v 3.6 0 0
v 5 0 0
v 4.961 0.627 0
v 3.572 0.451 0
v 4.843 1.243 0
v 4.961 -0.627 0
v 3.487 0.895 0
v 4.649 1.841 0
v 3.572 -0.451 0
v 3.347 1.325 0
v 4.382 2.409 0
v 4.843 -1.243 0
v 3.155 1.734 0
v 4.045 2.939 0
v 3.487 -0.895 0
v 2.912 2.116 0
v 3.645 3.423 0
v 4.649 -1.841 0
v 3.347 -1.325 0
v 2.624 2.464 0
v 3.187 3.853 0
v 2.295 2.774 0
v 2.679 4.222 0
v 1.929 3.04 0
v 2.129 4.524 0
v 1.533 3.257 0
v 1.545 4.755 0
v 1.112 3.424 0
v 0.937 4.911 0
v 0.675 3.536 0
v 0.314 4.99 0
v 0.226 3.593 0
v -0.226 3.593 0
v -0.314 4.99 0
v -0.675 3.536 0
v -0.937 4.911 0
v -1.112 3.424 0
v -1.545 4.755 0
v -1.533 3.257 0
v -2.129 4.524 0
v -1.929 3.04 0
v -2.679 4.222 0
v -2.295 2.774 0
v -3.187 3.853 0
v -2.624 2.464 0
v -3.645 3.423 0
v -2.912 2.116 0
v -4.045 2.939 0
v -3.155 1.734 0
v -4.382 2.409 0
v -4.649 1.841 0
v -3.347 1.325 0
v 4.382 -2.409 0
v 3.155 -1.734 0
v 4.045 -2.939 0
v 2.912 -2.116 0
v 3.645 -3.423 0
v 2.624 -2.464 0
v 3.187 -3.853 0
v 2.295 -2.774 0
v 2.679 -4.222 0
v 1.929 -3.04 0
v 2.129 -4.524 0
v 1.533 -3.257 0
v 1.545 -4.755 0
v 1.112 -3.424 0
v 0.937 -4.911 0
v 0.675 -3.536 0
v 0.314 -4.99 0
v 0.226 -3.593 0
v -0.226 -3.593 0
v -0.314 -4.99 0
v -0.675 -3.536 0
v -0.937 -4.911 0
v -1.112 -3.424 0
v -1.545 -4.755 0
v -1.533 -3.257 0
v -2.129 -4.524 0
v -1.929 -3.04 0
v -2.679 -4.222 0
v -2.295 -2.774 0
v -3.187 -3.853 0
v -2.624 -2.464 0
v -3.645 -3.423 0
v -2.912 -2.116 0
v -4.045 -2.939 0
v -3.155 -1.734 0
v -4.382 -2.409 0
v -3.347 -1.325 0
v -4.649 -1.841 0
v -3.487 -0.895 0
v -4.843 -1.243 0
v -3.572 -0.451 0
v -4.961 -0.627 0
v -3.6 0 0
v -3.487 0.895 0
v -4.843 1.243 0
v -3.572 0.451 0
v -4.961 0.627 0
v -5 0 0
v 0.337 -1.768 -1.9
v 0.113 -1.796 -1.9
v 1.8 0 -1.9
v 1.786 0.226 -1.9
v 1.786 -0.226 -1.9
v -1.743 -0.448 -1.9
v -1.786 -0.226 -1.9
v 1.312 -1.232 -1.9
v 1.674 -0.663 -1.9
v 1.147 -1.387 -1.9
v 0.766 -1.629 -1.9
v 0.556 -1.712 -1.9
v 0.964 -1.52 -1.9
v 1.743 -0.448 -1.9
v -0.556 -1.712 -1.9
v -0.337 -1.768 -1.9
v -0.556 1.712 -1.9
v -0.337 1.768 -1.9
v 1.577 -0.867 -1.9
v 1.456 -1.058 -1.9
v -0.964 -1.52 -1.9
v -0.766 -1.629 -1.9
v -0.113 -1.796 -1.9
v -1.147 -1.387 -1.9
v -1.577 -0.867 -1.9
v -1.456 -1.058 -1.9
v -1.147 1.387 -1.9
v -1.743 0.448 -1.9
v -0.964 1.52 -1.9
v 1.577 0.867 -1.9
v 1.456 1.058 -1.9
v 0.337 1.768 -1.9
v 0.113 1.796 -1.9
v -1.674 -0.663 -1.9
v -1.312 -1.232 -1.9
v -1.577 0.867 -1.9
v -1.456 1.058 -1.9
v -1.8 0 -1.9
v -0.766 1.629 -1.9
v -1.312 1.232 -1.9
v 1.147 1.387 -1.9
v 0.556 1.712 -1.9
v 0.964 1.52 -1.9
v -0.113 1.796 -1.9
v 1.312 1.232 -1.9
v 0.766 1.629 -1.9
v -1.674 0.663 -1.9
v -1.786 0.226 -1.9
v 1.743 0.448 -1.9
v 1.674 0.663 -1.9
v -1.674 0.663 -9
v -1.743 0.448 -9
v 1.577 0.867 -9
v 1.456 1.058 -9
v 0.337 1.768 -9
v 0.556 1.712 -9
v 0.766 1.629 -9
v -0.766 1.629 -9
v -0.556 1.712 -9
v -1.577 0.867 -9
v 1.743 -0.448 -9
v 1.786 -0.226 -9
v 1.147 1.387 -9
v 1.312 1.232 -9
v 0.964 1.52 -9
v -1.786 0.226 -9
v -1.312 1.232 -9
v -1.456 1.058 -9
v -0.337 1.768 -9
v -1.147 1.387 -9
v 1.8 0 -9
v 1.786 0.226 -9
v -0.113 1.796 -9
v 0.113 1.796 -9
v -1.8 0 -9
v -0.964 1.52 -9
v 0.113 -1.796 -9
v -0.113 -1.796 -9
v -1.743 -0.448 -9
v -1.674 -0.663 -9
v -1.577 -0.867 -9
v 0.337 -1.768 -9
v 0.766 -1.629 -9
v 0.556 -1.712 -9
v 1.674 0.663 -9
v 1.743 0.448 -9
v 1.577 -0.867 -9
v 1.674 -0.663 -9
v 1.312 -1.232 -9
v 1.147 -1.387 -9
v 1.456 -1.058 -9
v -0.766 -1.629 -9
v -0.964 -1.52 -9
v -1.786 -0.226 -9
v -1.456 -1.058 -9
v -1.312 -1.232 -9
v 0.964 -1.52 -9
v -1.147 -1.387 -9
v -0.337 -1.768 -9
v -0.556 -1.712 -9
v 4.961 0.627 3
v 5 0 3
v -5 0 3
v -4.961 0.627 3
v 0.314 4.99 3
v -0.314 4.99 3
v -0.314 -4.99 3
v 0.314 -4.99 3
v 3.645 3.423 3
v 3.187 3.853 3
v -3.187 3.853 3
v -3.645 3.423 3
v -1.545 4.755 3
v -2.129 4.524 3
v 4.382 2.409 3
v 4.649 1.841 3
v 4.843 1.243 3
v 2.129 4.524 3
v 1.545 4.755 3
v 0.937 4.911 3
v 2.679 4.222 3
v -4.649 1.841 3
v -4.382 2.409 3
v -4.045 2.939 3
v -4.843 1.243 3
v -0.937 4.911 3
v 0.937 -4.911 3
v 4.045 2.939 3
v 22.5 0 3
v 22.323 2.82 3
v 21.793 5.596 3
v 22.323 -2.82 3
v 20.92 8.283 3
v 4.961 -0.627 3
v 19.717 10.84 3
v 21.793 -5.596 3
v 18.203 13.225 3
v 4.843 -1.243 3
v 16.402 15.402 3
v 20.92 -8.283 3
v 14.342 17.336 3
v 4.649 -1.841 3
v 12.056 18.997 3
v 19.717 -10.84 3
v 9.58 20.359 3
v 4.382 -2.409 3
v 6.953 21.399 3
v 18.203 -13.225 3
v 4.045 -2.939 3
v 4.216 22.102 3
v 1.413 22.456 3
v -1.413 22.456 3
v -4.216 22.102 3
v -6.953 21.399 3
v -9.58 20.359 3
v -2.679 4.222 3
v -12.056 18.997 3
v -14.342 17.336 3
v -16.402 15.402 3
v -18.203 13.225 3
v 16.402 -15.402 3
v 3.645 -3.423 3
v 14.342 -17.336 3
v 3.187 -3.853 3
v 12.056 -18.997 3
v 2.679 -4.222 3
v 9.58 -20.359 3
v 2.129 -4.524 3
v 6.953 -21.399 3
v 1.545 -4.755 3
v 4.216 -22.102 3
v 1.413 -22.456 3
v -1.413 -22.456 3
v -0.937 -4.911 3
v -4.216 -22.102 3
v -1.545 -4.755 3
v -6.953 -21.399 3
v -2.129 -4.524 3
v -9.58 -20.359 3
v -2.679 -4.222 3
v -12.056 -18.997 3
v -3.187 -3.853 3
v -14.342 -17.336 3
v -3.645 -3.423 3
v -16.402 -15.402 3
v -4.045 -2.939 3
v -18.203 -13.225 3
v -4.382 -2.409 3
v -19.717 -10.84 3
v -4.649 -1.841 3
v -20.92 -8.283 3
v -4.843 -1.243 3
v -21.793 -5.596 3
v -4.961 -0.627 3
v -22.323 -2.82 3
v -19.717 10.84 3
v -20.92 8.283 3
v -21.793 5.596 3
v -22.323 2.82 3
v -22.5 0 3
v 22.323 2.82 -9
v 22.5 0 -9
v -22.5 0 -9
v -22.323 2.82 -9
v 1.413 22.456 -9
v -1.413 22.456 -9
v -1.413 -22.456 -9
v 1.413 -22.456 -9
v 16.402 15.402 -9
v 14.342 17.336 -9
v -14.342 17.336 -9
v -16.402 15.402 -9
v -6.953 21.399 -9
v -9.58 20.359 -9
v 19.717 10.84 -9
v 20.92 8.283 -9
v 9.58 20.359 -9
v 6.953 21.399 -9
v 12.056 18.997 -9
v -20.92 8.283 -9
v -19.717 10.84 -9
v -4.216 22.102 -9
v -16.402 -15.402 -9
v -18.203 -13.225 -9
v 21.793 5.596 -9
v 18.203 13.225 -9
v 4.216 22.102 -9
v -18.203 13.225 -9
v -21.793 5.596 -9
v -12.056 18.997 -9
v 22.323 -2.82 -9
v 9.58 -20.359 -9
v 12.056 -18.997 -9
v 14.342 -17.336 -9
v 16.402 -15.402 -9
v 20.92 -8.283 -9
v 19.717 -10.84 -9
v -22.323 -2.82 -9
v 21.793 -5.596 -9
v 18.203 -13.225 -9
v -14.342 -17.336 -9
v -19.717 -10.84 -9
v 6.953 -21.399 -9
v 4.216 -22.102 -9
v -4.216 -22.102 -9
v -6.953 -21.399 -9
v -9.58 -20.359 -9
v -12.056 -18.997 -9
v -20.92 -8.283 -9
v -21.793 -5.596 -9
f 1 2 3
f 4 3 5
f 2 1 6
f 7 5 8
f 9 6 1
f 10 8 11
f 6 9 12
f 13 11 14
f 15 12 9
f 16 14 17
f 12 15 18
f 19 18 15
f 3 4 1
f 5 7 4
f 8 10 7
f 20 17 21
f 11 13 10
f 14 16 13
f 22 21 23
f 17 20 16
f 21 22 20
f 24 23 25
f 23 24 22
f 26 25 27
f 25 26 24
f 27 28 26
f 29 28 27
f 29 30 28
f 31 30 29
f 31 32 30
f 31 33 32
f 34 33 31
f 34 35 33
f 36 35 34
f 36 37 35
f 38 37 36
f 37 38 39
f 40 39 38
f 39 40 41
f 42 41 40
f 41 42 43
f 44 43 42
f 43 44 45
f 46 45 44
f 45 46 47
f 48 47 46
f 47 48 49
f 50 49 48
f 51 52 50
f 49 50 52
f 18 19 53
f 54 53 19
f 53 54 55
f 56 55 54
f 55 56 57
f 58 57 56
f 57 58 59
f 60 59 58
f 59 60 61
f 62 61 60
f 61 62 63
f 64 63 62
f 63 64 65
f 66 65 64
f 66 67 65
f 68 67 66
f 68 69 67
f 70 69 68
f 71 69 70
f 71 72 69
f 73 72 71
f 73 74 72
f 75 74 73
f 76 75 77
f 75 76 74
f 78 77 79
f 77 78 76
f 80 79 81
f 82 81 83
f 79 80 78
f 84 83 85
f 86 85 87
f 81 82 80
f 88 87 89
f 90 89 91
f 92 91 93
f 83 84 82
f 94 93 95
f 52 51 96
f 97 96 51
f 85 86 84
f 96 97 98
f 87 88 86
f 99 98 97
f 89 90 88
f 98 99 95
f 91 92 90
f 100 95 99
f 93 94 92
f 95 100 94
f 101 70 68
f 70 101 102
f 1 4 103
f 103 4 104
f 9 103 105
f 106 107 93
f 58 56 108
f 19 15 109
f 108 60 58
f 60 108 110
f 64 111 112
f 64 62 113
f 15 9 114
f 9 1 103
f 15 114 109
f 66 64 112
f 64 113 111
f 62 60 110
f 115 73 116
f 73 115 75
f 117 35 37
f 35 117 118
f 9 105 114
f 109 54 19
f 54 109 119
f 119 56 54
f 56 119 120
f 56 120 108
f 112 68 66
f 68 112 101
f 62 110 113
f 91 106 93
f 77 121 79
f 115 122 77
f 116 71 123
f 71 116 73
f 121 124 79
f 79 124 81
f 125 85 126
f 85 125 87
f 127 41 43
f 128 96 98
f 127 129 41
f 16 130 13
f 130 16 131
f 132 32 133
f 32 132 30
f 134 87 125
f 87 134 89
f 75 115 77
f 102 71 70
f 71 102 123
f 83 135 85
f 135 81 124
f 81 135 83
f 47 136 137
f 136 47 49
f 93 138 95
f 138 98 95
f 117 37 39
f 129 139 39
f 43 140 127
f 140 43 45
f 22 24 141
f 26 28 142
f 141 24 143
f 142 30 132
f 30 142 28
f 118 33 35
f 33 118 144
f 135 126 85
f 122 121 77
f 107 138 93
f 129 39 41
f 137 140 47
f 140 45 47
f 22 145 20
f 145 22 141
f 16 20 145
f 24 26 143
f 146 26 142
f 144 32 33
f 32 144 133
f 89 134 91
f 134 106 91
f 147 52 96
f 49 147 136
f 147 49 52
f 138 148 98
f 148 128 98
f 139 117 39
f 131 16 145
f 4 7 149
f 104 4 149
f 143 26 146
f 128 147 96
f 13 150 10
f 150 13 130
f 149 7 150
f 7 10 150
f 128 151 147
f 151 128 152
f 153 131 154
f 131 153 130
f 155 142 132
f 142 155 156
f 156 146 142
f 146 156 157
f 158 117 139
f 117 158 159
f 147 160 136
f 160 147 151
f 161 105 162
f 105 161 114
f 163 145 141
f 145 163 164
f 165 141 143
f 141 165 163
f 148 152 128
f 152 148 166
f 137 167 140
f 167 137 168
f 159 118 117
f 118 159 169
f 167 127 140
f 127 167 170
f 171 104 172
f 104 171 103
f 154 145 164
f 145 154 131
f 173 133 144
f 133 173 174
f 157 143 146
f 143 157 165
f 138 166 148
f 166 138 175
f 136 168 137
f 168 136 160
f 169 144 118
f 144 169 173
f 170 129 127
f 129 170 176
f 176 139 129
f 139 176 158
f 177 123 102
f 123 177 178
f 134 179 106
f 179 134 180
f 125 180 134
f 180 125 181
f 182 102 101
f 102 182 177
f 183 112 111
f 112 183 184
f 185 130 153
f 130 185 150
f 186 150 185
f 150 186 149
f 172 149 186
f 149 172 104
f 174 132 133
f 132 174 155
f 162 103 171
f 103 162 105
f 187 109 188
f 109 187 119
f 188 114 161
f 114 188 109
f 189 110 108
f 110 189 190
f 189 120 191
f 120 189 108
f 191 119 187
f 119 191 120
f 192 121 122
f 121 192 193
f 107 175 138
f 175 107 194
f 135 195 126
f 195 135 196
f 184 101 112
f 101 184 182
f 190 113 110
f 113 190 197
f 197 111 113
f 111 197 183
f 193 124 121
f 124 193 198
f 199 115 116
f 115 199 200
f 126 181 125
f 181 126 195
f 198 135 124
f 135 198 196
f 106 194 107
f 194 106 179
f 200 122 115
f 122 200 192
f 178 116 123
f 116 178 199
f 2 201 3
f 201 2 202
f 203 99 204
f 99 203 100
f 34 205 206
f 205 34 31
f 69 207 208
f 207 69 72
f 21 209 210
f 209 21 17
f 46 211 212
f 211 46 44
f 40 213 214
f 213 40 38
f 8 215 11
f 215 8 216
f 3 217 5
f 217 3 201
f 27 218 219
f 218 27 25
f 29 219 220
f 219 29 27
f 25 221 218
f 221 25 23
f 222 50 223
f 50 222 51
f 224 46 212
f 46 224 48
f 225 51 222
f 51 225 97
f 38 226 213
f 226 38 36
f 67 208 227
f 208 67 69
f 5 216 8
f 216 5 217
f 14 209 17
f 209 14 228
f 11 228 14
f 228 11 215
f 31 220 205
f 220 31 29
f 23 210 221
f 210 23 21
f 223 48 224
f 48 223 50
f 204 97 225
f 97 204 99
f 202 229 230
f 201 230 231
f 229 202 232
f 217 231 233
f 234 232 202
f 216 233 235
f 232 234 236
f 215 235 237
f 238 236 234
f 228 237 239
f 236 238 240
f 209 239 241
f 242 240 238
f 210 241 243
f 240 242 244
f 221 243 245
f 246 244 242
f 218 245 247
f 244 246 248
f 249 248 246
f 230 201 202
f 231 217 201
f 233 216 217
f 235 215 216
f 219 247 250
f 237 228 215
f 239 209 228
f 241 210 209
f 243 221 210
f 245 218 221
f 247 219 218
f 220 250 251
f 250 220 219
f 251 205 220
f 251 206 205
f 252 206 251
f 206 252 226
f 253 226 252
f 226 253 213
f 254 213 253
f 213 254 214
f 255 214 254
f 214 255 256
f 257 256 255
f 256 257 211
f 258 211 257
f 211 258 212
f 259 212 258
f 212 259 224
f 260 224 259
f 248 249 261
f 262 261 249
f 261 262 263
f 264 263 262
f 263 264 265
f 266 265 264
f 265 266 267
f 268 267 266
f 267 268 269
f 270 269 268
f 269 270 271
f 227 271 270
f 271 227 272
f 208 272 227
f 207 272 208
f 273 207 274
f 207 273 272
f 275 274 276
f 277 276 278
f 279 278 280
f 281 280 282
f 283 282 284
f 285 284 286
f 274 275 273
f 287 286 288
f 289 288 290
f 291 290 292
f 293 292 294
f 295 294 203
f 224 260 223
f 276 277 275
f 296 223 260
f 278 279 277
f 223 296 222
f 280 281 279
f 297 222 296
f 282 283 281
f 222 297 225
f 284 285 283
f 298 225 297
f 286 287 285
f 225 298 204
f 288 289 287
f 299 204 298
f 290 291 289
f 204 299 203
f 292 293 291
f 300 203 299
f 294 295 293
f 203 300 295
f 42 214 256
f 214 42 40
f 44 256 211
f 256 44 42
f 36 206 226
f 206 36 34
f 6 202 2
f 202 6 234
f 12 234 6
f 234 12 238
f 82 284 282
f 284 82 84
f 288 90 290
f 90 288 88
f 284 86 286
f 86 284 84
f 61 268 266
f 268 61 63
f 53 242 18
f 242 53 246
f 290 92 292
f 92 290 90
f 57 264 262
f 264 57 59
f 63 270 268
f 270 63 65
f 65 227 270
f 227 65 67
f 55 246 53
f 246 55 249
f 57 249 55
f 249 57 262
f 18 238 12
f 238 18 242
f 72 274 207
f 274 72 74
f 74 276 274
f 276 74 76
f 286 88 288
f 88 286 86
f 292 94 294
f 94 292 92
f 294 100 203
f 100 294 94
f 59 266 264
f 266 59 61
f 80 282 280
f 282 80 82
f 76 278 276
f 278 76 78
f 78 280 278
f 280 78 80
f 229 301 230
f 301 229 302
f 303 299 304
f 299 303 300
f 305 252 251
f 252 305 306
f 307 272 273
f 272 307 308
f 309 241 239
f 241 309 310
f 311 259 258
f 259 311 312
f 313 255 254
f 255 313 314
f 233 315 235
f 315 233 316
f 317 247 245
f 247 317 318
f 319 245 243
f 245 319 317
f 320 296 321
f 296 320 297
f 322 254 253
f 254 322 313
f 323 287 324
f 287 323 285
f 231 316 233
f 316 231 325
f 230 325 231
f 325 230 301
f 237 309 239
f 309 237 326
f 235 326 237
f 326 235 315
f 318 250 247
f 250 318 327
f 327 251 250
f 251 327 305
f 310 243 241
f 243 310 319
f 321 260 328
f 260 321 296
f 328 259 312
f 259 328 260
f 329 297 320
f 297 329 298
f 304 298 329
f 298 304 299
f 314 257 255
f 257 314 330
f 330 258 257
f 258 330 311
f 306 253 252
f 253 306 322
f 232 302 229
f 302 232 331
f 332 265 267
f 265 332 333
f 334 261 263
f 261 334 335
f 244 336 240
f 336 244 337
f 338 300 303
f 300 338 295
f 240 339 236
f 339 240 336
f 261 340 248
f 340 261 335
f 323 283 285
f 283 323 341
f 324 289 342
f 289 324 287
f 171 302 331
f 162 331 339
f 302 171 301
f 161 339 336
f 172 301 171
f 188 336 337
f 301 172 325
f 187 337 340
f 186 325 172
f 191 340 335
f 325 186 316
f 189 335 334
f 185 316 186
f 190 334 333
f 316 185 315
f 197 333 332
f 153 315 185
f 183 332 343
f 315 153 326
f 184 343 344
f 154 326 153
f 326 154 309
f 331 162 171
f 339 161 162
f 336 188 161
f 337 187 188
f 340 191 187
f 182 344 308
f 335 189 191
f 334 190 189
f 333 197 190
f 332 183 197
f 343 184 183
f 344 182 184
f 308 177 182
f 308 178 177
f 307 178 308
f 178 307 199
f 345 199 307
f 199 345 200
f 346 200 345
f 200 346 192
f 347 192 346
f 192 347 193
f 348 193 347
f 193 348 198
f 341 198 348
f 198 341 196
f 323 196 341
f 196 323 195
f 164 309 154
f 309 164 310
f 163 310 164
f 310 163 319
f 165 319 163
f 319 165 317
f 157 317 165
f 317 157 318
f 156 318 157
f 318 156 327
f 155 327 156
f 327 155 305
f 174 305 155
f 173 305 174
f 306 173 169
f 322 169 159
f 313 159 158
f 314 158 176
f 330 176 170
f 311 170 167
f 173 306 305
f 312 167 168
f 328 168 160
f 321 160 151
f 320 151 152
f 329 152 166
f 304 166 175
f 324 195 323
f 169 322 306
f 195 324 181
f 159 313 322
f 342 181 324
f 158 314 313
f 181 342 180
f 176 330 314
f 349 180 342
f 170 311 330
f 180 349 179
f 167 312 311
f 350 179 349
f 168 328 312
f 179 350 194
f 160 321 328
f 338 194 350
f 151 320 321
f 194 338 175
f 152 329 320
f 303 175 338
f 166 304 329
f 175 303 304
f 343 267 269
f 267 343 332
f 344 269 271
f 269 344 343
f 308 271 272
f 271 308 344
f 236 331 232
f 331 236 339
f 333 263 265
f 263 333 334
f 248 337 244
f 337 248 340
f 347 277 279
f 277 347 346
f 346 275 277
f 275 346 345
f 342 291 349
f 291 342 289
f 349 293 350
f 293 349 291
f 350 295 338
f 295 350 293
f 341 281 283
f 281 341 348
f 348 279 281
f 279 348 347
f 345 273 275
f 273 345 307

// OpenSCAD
$fn = 50;

difference() {
	union() {
		translate(v = [0, 0, -9.0]) {
			cylinder(h = 12, r = 22.5);
		}
	}
	union() {
		translate(v = [0, 0, 0]) {
			rotate(a = [0, 0, 0]) {
				difference() {
					union() {
						translate(v = [0, 0, -12.0]) {
							cylinder(h = 12, r = 1.5);
						}
						translate(v = [0, 0, -1.9]) {
							cylinder(h = 1.9, r1 = 1.8, r2 = 3.6);
						}
						translate(v = [0, 0, -12.0]) {
							cylinder(h = 12, r = 1.8);
						}
						translate(v = [0, 0, -12.0]) {
							cylinder(h = 12, r = 1.5);
						}
					}
					union();
				}
			}
		}
		#cylinder(h = 3, r = 5.0);
	}
}
